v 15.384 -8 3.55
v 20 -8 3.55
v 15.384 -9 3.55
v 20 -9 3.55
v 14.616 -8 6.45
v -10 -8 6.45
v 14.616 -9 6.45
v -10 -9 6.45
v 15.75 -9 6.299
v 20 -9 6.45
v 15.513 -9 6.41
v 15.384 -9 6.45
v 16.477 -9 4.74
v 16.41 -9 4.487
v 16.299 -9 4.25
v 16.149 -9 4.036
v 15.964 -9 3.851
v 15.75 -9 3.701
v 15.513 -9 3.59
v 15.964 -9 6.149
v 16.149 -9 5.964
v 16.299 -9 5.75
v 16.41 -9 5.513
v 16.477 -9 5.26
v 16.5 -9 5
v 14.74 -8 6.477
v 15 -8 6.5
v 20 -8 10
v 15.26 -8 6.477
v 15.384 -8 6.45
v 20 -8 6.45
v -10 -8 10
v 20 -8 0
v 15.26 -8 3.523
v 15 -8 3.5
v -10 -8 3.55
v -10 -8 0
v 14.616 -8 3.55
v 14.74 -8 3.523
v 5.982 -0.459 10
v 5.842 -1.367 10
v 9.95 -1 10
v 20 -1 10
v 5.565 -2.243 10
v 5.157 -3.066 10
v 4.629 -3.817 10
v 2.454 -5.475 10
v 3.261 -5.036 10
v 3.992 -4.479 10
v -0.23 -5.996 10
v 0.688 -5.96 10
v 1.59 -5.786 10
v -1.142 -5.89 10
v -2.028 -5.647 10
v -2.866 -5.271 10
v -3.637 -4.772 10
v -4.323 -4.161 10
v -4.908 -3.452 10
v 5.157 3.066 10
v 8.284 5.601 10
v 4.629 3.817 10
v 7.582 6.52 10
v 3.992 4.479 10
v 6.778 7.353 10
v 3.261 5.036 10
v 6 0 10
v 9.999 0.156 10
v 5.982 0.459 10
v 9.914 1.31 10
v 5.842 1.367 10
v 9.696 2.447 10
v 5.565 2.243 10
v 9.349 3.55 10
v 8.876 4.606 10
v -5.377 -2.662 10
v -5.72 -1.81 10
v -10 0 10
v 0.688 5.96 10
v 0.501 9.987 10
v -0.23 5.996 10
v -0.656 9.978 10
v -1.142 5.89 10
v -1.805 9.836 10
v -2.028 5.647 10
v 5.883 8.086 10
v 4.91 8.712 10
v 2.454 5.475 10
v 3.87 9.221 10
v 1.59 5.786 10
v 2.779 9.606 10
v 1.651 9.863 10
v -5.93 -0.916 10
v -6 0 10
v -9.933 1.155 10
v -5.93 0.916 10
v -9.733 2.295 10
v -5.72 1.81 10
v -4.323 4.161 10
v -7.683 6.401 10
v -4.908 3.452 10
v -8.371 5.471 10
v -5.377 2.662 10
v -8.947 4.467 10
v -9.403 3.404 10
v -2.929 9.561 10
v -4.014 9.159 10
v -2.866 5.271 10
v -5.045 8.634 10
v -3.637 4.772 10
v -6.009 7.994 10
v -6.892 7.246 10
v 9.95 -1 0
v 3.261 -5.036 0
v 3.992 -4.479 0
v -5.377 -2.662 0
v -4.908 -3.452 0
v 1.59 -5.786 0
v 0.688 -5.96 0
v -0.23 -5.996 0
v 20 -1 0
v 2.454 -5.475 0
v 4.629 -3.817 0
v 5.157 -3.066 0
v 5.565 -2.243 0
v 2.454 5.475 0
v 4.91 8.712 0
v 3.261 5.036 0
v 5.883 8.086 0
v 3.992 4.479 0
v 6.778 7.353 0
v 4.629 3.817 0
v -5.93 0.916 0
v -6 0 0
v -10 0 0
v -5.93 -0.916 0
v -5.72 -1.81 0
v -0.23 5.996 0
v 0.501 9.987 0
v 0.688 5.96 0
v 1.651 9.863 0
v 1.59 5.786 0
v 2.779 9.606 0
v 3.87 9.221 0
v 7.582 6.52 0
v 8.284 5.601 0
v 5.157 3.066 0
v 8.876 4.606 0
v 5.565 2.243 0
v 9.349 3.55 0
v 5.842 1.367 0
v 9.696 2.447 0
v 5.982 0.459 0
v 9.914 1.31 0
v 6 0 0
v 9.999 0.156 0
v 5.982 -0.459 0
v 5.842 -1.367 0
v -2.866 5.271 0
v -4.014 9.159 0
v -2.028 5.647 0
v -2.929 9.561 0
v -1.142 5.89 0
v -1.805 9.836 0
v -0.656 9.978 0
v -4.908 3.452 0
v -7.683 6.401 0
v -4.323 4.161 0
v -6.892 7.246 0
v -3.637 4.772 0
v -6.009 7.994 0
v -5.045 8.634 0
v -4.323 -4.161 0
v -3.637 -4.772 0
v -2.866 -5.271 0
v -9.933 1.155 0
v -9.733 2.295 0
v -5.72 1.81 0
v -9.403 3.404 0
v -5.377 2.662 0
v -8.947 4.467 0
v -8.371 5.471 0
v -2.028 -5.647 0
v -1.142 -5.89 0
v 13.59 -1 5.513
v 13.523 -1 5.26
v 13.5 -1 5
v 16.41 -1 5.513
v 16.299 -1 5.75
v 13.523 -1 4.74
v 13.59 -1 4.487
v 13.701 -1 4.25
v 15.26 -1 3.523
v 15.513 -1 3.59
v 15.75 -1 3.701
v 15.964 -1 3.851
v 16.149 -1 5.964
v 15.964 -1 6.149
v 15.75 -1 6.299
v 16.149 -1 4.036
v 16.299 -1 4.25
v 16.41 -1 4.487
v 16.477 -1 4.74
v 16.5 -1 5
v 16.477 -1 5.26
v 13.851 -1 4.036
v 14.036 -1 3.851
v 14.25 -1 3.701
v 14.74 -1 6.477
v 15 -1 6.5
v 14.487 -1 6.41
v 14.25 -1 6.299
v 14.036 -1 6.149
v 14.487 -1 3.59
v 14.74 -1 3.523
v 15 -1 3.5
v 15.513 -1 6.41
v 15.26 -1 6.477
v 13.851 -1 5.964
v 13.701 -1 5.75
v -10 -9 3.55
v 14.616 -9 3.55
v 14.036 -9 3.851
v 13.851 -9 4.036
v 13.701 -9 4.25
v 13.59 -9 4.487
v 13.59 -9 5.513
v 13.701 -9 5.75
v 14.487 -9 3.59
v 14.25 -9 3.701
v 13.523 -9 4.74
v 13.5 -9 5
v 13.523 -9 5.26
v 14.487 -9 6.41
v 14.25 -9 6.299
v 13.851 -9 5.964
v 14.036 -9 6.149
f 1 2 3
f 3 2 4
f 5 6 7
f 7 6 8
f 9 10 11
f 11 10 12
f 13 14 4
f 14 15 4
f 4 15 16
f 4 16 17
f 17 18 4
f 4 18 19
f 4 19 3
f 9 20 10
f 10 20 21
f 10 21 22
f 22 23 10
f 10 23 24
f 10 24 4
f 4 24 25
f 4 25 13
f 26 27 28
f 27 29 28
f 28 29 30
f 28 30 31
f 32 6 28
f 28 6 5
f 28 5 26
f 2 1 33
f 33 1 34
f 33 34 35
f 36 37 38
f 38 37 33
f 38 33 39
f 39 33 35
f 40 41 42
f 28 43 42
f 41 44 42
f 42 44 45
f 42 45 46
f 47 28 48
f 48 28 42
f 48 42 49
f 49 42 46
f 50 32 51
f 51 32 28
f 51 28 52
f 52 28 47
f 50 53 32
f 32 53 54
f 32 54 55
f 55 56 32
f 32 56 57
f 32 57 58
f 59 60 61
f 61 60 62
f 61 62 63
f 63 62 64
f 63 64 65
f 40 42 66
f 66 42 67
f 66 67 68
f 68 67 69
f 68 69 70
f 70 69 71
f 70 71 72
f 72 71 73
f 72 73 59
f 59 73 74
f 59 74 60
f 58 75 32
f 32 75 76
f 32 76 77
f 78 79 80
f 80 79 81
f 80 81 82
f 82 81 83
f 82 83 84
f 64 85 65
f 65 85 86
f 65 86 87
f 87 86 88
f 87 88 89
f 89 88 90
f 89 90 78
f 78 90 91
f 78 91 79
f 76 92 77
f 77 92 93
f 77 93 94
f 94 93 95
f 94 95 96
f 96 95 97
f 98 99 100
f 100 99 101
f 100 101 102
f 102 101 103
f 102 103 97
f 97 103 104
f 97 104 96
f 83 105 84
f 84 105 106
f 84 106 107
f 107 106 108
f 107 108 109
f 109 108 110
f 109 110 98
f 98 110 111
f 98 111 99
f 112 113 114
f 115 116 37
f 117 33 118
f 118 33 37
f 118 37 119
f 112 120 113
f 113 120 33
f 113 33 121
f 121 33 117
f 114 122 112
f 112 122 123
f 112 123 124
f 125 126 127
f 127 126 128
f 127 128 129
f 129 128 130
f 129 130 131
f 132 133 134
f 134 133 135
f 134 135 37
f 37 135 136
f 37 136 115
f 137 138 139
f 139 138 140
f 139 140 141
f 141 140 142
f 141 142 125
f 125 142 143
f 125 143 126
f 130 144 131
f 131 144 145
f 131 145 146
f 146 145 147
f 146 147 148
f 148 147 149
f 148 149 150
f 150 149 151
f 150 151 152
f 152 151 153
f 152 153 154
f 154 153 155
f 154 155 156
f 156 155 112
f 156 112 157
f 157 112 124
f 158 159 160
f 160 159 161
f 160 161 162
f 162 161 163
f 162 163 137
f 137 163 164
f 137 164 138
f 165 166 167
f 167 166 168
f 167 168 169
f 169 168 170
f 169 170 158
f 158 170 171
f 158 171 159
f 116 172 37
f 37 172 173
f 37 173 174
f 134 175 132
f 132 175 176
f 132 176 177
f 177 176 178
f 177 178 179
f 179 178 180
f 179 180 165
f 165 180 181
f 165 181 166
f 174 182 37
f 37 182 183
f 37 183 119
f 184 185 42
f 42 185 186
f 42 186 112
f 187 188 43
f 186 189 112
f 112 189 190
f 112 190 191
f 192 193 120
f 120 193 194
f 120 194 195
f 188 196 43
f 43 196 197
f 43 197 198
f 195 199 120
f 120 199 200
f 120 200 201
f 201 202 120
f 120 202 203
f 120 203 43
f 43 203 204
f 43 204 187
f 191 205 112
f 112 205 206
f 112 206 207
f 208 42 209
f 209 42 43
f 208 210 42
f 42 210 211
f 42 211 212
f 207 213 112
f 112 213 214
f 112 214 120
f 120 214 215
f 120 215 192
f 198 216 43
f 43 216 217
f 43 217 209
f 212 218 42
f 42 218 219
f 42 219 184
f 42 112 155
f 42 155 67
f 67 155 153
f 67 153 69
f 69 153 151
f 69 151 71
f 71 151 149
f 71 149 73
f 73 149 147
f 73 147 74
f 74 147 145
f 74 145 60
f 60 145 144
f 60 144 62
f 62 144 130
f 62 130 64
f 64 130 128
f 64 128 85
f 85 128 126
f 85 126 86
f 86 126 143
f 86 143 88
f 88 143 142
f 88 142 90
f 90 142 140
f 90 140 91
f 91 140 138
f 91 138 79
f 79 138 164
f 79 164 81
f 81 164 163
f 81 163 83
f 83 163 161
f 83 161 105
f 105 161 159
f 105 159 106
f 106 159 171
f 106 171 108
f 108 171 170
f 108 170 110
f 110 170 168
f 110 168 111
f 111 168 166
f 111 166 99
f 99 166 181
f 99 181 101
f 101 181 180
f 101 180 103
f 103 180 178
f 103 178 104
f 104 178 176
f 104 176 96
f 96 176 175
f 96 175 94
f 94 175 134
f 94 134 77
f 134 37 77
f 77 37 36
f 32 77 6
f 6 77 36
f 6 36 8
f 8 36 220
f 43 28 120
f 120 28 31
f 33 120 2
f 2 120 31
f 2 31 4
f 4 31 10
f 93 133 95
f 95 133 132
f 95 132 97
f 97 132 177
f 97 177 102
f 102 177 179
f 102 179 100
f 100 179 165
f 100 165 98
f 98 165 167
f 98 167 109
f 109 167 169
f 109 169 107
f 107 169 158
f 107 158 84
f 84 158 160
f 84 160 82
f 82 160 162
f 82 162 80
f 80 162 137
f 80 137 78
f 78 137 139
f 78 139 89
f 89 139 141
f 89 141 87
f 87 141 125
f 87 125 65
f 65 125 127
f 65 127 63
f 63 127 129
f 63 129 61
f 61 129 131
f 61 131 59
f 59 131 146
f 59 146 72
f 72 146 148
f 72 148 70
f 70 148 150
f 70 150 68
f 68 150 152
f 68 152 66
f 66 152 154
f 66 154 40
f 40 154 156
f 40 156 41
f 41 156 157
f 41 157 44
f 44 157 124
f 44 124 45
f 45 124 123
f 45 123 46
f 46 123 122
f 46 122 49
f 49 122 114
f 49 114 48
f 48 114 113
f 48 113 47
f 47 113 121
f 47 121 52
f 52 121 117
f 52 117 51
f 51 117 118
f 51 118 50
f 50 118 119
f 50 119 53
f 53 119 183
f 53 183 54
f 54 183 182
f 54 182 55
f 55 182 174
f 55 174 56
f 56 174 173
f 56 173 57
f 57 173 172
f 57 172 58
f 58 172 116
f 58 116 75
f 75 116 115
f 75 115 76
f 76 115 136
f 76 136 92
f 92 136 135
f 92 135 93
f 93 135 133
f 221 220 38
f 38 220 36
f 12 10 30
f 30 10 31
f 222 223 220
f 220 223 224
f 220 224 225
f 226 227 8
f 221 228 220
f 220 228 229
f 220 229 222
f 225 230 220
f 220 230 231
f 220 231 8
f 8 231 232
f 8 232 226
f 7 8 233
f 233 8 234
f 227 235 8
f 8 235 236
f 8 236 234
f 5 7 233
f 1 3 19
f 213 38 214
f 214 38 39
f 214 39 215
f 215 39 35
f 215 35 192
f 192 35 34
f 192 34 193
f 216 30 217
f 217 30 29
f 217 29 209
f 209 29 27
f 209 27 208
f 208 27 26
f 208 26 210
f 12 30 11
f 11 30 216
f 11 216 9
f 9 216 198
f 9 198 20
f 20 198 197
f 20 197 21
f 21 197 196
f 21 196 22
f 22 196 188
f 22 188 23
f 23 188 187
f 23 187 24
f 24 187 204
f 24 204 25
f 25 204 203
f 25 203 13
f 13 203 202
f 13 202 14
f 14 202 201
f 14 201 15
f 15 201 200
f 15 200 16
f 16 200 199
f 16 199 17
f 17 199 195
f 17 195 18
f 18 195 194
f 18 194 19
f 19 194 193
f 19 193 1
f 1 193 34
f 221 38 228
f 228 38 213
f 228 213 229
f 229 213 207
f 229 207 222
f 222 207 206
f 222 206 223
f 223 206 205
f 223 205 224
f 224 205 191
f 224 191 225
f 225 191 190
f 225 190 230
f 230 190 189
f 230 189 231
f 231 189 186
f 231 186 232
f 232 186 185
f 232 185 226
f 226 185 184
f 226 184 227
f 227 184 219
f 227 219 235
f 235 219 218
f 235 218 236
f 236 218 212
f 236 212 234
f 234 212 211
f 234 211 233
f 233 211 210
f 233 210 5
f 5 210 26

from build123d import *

# Parameters (mm, degrees)
SKETCH1_R                       = 6
MAIN_DEPTH                      = 10
SKETCH3_W                       = 30
SKETCH3_H                       = 2.9
MAKERBEAMRECTANGULARGUIDE_DEPTH = 1
SKETCH4_R                       = 1.5
MAKERBEAMFIXHOLE_DEPTH          = 9


with BuildPart() as part:
    # Sketch1 → Main (new body)
    with BuildSketch(Plane.XY):
        with BuildLine():
            Line((-10, 0), (-10, -8))
            Line((-10, -8), (20, -8))
            Line((20, -8), (20, -1))
            Line((20, -1), (9.949874371, -1))
            ThreePointArc((9.949874371, -1), (0.500627751, 9.987460731), (-10, 0))
        make_face()
        Circle(SKETCH1_R, mode=Mode.SUBTRACT)
    extrude(amount=MAIN_DEPTH)

    # Sketch3 → MakerBeamRectangularGuide (add)
    with BuildSketch(Plane(origin=(0, -8, 0), x_dir=(-1, 0, 0), z_dir=(0, -1, 0))):
        with Locations((-5, -5)):
            Rectangle(SKETCH3_W, SKETCH3_H)
    extrude(amount=MAKERBEAMRECTANGULARGUIDE_DEPTH)

    # Sketch4 → MakerBeamFixHole (cut, through all)
    with BuildSketch(Plane(origin=(0, -1, 0), x_dir=(1, 0, 0), z_dir=(0, 1, 0))):
        with Locations((15, -5)):
            Circle(SKETCH4_R)
    extrude(amount=-MAKERBEAMFIXHOLE_DEPTH, mode=Mode.SUBTRACT)


solid = part.part
